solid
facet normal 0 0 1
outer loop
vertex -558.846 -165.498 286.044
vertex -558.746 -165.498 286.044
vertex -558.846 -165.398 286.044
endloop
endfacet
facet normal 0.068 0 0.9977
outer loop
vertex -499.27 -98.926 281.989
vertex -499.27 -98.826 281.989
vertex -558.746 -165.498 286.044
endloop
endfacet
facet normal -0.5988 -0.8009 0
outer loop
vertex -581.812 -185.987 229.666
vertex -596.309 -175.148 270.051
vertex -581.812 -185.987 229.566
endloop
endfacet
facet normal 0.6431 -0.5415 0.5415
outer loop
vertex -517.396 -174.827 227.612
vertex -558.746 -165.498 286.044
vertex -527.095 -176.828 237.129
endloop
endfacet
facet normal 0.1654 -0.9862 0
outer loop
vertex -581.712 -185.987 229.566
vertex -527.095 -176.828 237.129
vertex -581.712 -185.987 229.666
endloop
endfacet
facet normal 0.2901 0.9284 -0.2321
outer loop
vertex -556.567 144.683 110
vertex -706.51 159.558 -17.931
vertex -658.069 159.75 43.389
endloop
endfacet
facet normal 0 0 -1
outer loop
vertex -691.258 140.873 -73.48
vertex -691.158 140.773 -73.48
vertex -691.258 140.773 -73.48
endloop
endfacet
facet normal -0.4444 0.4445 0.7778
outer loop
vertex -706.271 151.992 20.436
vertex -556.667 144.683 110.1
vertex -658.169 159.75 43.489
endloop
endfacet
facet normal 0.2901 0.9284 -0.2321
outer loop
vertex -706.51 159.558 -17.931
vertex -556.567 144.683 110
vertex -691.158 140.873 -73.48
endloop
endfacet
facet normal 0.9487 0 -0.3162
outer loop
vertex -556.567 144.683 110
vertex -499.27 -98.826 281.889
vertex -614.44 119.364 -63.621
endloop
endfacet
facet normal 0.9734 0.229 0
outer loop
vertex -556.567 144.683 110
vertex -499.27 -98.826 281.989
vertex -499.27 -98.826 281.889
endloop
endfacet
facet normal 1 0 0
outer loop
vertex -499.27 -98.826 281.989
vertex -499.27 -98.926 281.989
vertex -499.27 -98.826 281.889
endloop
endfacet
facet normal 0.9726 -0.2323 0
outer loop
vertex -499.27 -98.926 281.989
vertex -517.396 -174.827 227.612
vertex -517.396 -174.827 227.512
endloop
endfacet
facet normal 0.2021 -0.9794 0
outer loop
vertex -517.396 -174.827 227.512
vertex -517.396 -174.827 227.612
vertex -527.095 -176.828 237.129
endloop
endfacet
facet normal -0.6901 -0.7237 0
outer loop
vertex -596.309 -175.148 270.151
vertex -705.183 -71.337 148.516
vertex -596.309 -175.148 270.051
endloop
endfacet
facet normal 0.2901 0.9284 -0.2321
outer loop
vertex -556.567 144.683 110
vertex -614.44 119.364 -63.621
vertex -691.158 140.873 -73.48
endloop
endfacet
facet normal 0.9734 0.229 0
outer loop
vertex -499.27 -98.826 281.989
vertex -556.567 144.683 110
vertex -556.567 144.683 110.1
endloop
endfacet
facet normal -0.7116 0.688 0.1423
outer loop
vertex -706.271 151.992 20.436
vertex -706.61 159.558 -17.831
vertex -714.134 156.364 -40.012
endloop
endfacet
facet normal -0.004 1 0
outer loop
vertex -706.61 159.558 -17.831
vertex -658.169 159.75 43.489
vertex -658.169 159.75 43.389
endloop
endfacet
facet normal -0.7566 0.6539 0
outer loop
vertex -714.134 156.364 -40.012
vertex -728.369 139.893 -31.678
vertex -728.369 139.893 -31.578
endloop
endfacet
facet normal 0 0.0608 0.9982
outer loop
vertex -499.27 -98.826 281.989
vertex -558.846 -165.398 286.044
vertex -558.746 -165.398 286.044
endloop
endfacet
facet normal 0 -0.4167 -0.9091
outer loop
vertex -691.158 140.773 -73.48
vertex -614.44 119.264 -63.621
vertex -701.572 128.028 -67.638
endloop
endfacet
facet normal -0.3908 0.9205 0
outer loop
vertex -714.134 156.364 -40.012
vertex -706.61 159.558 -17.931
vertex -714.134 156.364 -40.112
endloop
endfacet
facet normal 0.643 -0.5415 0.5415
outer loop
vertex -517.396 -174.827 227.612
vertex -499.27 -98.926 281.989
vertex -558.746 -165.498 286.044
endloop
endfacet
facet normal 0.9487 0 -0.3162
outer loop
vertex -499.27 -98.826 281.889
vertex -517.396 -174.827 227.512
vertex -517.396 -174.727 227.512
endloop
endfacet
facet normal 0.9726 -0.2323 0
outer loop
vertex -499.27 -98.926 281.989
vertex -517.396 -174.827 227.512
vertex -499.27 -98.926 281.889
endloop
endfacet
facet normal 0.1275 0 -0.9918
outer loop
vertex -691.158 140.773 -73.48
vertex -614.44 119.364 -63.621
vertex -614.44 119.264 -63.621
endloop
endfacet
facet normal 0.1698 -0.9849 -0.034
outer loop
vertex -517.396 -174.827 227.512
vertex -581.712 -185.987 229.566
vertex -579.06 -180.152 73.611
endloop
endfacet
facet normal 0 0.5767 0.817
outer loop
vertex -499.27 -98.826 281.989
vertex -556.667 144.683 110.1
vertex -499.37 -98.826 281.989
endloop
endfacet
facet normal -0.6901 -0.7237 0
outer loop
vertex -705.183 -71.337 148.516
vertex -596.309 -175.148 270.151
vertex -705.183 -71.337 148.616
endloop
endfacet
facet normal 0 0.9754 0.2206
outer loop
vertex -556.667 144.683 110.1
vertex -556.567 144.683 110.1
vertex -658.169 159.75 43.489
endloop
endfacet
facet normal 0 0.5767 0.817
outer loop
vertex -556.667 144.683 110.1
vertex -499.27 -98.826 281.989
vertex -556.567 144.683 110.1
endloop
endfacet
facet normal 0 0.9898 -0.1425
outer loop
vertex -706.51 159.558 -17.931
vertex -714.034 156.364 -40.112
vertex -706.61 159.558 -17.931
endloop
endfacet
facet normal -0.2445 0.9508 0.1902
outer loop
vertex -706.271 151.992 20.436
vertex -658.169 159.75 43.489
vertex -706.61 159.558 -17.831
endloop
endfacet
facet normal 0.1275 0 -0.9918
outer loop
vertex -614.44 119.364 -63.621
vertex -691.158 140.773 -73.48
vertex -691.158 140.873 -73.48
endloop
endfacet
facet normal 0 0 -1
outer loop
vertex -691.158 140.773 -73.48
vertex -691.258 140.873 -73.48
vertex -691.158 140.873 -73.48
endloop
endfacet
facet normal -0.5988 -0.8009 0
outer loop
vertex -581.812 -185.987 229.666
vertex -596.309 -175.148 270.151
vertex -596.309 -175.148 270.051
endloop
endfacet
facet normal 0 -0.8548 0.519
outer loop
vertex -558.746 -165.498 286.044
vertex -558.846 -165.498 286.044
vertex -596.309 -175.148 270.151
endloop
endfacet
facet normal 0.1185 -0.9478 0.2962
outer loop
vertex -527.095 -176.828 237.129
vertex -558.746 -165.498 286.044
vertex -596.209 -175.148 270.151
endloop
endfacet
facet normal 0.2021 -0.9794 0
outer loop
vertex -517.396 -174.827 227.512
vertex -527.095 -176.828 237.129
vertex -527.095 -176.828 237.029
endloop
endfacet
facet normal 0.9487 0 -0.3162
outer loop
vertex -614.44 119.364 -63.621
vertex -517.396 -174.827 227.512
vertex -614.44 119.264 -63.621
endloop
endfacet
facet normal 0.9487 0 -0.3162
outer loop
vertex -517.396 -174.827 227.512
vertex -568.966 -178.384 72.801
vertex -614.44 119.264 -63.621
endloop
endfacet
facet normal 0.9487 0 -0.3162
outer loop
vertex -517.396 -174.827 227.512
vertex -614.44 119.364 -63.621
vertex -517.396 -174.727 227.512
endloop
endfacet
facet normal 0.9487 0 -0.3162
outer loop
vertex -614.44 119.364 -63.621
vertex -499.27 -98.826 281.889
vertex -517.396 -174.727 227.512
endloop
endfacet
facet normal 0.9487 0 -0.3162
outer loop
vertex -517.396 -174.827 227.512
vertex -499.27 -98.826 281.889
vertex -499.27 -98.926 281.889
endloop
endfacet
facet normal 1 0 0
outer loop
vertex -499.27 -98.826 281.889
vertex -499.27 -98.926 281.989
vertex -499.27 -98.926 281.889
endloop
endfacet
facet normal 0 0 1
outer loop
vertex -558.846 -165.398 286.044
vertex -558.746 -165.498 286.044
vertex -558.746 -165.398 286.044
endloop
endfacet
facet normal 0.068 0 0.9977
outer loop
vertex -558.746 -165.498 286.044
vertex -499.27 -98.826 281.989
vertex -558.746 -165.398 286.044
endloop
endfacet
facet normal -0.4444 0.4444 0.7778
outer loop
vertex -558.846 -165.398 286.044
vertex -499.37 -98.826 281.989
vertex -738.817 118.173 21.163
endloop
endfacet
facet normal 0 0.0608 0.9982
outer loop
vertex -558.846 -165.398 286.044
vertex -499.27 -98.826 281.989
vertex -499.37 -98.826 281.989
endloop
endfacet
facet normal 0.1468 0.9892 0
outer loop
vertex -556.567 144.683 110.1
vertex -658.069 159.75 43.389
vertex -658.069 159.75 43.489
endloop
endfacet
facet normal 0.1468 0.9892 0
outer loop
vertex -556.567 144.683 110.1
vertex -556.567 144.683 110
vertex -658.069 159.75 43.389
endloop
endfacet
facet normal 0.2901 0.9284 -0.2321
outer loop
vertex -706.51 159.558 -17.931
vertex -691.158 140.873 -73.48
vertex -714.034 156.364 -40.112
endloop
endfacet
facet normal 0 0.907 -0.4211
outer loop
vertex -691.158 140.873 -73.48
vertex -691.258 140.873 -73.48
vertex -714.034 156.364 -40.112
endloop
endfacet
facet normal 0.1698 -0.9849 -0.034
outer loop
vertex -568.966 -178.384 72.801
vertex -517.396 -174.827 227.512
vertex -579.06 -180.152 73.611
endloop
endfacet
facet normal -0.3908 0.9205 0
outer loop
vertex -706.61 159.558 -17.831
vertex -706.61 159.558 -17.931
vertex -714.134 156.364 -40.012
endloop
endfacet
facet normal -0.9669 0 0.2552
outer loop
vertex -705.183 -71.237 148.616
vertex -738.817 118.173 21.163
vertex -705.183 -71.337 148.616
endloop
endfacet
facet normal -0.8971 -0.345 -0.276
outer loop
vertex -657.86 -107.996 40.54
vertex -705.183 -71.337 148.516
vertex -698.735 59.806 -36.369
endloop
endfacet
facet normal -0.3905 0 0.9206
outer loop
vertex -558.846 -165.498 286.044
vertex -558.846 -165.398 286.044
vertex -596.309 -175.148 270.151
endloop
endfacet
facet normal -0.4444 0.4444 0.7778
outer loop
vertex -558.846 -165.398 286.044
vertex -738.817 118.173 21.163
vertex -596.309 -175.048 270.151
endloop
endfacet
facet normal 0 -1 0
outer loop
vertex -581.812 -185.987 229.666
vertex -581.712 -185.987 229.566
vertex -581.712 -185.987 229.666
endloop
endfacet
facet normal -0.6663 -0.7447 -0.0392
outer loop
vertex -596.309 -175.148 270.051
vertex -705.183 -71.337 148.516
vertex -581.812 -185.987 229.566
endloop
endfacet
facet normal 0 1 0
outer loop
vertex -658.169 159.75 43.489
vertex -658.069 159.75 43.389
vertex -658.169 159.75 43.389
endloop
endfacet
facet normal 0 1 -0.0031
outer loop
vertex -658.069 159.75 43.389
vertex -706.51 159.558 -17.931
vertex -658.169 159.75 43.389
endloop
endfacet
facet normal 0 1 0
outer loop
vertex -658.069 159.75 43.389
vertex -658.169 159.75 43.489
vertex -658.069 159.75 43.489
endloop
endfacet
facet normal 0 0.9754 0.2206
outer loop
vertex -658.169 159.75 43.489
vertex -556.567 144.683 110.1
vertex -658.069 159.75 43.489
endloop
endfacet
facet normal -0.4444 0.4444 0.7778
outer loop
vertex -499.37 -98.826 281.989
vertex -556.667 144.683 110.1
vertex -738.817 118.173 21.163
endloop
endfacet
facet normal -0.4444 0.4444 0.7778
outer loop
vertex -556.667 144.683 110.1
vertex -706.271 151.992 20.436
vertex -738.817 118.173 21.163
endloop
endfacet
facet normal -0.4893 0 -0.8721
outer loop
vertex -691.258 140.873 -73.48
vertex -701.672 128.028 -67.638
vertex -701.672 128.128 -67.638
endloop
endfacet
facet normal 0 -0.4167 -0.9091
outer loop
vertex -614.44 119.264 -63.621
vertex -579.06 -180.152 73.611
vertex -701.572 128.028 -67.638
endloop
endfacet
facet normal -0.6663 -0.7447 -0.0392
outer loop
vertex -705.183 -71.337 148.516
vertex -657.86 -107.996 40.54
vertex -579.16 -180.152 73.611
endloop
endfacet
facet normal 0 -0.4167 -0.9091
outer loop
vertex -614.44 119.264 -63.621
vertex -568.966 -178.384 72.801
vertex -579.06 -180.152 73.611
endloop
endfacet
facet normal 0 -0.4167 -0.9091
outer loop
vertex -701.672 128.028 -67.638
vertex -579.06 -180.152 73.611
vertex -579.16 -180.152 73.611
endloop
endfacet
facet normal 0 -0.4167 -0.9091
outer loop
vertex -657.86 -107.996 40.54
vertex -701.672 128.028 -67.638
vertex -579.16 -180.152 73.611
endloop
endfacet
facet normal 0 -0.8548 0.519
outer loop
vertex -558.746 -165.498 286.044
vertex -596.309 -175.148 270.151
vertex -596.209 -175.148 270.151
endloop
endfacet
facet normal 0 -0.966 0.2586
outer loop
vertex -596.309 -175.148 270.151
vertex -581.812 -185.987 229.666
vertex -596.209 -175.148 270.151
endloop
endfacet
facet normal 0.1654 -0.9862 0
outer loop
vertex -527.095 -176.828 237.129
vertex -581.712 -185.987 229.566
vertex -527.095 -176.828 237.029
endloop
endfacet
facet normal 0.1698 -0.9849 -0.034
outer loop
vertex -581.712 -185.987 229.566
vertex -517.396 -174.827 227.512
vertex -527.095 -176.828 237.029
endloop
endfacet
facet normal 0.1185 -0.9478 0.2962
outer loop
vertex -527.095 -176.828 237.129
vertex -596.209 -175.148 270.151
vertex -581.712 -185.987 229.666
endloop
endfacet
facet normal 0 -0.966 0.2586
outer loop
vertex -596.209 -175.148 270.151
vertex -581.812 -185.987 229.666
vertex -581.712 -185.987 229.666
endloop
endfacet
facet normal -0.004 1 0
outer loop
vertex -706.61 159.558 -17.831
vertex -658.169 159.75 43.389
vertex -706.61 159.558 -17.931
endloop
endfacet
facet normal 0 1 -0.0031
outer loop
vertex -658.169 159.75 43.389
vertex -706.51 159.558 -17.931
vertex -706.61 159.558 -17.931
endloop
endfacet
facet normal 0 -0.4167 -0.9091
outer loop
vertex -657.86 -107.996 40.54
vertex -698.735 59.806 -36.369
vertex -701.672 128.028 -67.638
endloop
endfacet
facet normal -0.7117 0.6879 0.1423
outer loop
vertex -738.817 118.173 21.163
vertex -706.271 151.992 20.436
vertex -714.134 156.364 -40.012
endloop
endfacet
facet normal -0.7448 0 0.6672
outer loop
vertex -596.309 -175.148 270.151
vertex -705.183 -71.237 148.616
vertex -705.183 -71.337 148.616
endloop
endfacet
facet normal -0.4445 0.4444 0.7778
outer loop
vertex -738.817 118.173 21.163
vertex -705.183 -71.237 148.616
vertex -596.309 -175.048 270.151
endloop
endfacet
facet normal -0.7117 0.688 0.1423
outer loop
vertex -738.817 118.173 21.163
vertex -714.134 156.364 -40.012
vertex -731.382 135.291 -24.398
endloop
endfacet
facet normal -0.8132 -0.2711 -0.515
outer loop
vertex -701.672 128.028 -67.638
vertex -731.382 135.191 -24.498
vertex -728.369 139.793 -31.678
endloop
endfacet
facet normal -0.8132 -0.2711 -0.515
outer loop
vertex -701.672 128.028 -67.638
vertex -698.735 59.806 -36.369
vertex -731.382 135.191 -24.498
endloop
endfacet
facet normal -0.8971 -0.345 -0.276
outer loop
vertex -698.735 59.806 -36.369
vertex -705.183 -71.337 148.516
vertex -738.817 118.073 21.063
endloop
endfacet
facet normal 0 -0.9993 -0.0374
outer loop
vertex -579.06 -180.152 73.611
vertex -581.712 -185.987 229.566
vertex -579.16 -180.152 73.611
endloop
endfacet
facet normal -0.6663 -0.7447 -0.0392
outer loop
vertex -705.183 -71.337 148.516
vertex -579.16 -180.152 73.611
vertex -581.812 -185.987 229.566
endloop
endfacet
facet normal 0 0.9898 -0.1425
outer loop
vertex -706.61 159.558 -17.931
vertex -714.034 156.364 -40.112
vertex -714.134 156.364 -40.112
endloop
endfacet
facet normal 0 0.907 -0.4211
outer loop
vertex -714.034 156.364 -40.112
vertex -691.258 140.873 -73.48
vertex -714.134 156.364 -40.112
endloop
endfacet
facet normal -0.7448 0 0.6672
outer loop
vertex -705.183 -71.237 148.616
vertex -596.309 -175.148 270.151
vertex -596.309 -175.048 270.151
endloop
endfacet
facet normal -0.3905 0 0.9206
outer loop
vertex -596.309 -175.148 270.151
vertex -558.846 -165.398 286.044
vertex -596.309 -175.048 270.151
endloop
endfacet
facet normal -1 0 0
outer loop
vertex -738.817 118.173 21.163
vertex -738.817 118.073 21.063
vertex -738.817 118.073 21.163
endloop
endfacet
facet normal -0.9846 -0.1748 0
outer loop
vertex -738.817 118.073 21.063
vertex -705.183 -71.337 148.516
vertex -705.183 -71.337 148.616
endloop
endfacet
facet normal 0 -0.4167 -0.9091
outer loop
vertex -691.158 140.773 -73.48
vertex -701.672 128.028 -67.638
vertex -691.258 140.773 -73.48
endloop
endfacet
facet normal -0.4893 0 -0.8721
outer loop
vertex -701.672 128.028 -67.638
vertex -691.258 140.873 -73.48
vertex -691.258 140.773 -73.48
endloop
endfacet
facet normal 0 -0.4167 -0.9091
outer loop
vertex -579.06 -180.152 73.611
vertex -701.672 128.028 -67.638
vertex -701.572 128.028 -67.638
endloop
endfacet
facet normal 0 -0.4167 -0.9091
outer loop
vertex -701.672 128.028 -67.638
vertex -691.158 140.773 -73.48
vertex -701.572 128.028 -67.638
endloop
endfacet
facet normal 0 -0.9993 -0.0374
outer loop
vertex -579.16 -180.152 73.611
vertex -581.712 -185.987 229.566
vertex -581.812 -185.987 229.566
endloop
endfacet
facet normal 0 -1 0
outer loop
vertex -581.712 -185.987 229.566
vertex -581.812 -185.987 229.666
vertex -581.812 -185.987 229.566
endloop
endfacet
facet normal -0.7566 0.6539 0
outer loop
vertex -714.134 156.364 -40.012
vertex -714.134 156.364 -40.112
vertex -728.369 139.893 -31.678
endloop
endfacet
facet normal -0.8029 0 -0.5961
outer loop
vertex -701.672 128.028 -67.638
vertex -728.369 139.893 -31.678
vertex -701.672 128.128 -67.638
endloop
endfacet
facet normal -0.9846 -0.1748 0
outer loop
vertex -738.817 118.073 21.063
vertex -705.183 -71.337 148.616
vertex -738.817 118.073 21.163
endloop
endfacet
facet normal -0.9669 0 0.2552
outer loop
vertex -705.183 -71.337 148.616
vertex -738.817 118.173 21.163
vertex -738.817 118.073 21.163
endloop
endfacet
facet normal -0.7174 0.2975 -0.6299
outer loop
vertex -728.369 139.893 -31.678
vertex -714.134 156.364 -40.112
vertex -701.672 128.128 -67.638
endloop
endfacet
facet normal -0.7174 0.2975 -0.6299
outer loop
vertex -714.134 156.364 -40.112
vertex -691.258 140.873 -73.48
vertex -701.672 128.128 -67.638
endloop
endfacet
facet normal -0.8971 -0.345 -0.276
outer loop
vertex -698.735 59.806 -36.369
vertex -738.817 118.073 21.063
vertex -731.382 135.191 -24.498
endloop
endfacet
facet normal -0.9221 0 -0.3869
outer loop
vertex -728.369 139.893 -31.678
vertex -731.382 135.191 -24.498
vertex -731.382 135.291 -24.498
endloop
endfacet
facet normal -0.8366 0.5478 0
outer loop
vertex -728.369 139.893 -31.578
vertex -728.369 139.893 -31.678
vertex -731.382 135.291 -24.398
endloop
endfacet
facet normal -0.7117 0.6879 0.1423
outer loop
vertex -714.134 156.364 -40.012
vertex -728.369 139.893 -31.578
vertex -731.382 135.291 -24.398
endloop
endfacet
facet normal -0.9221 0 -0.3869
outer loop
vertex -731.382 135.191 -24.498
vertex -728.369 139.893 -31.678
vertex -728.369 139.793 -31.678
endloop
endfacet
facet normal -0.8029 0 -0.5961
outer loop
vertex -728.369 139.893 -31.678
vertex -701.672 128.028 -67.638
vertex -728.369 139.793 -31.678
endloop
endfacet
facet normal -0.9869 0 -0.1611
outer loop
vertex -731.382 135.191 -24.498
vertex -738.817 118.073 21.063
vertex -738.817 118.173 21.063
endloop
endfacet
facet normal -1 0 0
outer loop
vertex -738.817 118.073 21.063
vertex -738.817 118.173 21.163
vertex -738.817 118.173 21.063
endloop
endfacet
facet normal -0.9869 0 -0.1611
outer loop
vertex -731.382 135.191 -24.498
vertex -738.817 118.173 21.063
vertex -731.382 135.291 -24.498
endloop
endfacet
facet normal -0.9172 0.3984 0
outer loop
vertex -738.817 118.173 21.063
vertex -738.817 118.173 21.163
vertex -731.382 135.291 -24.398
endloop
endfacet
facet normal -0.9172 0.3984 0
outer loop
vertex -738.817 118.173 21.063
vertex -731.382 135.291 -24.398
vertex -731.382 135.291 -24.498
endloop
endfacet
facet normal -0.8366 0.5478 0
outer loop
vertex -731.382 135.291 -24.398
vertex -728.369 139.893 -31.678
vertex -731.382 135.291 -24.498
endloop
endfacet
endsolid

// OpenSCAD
hull(){ translate([-499.37037037,-98.9259259259,281.888888889])cube(0.1,0.1,0.1);
translate([-738.816723234,118.073125579,21.0629435359])cube(0.1,0.1,0.1);
translate([-731.381808179,135.190720704,-24.4975242986])cube(0.1,0.1,0.1);
translate([-556.666666667,144.583333333,110.0])cube(0.1,0.1,0.1);
translate([-614.540276648,119.263628967,-63.620829943])cube(0.1,0.1,0.1);
translate([-698.734683005,59.8055407565,-36.3692061801])cube(0.1,0.1,0.1);
translate([-517.496075353,-174.827315542,227.51177394])cube(0.1,0.1,0.1);
translate([-569.066350711,-178.383886256,72.8009478673])cube(0.1,0.1,0.1);
translate([-658.169243287,159.65012205,43.3889340928])cube(0.1,0.1,0.1);
translate([-706.61029019,159.457895674,-17.9312800427])cube(0.1,0.1,0.1);
translate([-706.270786286,151.891808664,20.3356600287])cube(0.1,0.1,0.1);
translate([-558.846153846,-165.498251748,285.944055944])cube(0.1,0.1,0.1);
translate([-527.195367573,-176.827794562,237.029204431])cube(0.1,0.1,0.1);
translate([-657.860004451,-107.9957712,40.5397284665])cube(0.1,0.1,0.1);
translate([-579.160057678,-180.152126893,73.6113914924])cube(0.1,0.1,0.1);
translate([-581.812347188,-185.987163814,229.56601467])cube(0.1,0.1,0.1);
translate([-705.183150183,-71.336996337,148.516483516])cube(0.1,0.1,0.1);
translate([-596.308553971,-175.147657841,270.050916497])cube(0.1,0.1,0.1);
translate([-728.368548317,139.7934598,-31.6777972884])cube(0.1,0.1,0.1);
translate([-714.133908705,156.263906682,-40.1117591531])cube(0.1,0.1,0.1);
translate([-701.672049151,128.028238352,-67.6379425781])cube(0.1,0.1,0.1);
translate([-691.258345697,140.773367953,-73.4794603116])cube(0.1,0.1,0.1); }
